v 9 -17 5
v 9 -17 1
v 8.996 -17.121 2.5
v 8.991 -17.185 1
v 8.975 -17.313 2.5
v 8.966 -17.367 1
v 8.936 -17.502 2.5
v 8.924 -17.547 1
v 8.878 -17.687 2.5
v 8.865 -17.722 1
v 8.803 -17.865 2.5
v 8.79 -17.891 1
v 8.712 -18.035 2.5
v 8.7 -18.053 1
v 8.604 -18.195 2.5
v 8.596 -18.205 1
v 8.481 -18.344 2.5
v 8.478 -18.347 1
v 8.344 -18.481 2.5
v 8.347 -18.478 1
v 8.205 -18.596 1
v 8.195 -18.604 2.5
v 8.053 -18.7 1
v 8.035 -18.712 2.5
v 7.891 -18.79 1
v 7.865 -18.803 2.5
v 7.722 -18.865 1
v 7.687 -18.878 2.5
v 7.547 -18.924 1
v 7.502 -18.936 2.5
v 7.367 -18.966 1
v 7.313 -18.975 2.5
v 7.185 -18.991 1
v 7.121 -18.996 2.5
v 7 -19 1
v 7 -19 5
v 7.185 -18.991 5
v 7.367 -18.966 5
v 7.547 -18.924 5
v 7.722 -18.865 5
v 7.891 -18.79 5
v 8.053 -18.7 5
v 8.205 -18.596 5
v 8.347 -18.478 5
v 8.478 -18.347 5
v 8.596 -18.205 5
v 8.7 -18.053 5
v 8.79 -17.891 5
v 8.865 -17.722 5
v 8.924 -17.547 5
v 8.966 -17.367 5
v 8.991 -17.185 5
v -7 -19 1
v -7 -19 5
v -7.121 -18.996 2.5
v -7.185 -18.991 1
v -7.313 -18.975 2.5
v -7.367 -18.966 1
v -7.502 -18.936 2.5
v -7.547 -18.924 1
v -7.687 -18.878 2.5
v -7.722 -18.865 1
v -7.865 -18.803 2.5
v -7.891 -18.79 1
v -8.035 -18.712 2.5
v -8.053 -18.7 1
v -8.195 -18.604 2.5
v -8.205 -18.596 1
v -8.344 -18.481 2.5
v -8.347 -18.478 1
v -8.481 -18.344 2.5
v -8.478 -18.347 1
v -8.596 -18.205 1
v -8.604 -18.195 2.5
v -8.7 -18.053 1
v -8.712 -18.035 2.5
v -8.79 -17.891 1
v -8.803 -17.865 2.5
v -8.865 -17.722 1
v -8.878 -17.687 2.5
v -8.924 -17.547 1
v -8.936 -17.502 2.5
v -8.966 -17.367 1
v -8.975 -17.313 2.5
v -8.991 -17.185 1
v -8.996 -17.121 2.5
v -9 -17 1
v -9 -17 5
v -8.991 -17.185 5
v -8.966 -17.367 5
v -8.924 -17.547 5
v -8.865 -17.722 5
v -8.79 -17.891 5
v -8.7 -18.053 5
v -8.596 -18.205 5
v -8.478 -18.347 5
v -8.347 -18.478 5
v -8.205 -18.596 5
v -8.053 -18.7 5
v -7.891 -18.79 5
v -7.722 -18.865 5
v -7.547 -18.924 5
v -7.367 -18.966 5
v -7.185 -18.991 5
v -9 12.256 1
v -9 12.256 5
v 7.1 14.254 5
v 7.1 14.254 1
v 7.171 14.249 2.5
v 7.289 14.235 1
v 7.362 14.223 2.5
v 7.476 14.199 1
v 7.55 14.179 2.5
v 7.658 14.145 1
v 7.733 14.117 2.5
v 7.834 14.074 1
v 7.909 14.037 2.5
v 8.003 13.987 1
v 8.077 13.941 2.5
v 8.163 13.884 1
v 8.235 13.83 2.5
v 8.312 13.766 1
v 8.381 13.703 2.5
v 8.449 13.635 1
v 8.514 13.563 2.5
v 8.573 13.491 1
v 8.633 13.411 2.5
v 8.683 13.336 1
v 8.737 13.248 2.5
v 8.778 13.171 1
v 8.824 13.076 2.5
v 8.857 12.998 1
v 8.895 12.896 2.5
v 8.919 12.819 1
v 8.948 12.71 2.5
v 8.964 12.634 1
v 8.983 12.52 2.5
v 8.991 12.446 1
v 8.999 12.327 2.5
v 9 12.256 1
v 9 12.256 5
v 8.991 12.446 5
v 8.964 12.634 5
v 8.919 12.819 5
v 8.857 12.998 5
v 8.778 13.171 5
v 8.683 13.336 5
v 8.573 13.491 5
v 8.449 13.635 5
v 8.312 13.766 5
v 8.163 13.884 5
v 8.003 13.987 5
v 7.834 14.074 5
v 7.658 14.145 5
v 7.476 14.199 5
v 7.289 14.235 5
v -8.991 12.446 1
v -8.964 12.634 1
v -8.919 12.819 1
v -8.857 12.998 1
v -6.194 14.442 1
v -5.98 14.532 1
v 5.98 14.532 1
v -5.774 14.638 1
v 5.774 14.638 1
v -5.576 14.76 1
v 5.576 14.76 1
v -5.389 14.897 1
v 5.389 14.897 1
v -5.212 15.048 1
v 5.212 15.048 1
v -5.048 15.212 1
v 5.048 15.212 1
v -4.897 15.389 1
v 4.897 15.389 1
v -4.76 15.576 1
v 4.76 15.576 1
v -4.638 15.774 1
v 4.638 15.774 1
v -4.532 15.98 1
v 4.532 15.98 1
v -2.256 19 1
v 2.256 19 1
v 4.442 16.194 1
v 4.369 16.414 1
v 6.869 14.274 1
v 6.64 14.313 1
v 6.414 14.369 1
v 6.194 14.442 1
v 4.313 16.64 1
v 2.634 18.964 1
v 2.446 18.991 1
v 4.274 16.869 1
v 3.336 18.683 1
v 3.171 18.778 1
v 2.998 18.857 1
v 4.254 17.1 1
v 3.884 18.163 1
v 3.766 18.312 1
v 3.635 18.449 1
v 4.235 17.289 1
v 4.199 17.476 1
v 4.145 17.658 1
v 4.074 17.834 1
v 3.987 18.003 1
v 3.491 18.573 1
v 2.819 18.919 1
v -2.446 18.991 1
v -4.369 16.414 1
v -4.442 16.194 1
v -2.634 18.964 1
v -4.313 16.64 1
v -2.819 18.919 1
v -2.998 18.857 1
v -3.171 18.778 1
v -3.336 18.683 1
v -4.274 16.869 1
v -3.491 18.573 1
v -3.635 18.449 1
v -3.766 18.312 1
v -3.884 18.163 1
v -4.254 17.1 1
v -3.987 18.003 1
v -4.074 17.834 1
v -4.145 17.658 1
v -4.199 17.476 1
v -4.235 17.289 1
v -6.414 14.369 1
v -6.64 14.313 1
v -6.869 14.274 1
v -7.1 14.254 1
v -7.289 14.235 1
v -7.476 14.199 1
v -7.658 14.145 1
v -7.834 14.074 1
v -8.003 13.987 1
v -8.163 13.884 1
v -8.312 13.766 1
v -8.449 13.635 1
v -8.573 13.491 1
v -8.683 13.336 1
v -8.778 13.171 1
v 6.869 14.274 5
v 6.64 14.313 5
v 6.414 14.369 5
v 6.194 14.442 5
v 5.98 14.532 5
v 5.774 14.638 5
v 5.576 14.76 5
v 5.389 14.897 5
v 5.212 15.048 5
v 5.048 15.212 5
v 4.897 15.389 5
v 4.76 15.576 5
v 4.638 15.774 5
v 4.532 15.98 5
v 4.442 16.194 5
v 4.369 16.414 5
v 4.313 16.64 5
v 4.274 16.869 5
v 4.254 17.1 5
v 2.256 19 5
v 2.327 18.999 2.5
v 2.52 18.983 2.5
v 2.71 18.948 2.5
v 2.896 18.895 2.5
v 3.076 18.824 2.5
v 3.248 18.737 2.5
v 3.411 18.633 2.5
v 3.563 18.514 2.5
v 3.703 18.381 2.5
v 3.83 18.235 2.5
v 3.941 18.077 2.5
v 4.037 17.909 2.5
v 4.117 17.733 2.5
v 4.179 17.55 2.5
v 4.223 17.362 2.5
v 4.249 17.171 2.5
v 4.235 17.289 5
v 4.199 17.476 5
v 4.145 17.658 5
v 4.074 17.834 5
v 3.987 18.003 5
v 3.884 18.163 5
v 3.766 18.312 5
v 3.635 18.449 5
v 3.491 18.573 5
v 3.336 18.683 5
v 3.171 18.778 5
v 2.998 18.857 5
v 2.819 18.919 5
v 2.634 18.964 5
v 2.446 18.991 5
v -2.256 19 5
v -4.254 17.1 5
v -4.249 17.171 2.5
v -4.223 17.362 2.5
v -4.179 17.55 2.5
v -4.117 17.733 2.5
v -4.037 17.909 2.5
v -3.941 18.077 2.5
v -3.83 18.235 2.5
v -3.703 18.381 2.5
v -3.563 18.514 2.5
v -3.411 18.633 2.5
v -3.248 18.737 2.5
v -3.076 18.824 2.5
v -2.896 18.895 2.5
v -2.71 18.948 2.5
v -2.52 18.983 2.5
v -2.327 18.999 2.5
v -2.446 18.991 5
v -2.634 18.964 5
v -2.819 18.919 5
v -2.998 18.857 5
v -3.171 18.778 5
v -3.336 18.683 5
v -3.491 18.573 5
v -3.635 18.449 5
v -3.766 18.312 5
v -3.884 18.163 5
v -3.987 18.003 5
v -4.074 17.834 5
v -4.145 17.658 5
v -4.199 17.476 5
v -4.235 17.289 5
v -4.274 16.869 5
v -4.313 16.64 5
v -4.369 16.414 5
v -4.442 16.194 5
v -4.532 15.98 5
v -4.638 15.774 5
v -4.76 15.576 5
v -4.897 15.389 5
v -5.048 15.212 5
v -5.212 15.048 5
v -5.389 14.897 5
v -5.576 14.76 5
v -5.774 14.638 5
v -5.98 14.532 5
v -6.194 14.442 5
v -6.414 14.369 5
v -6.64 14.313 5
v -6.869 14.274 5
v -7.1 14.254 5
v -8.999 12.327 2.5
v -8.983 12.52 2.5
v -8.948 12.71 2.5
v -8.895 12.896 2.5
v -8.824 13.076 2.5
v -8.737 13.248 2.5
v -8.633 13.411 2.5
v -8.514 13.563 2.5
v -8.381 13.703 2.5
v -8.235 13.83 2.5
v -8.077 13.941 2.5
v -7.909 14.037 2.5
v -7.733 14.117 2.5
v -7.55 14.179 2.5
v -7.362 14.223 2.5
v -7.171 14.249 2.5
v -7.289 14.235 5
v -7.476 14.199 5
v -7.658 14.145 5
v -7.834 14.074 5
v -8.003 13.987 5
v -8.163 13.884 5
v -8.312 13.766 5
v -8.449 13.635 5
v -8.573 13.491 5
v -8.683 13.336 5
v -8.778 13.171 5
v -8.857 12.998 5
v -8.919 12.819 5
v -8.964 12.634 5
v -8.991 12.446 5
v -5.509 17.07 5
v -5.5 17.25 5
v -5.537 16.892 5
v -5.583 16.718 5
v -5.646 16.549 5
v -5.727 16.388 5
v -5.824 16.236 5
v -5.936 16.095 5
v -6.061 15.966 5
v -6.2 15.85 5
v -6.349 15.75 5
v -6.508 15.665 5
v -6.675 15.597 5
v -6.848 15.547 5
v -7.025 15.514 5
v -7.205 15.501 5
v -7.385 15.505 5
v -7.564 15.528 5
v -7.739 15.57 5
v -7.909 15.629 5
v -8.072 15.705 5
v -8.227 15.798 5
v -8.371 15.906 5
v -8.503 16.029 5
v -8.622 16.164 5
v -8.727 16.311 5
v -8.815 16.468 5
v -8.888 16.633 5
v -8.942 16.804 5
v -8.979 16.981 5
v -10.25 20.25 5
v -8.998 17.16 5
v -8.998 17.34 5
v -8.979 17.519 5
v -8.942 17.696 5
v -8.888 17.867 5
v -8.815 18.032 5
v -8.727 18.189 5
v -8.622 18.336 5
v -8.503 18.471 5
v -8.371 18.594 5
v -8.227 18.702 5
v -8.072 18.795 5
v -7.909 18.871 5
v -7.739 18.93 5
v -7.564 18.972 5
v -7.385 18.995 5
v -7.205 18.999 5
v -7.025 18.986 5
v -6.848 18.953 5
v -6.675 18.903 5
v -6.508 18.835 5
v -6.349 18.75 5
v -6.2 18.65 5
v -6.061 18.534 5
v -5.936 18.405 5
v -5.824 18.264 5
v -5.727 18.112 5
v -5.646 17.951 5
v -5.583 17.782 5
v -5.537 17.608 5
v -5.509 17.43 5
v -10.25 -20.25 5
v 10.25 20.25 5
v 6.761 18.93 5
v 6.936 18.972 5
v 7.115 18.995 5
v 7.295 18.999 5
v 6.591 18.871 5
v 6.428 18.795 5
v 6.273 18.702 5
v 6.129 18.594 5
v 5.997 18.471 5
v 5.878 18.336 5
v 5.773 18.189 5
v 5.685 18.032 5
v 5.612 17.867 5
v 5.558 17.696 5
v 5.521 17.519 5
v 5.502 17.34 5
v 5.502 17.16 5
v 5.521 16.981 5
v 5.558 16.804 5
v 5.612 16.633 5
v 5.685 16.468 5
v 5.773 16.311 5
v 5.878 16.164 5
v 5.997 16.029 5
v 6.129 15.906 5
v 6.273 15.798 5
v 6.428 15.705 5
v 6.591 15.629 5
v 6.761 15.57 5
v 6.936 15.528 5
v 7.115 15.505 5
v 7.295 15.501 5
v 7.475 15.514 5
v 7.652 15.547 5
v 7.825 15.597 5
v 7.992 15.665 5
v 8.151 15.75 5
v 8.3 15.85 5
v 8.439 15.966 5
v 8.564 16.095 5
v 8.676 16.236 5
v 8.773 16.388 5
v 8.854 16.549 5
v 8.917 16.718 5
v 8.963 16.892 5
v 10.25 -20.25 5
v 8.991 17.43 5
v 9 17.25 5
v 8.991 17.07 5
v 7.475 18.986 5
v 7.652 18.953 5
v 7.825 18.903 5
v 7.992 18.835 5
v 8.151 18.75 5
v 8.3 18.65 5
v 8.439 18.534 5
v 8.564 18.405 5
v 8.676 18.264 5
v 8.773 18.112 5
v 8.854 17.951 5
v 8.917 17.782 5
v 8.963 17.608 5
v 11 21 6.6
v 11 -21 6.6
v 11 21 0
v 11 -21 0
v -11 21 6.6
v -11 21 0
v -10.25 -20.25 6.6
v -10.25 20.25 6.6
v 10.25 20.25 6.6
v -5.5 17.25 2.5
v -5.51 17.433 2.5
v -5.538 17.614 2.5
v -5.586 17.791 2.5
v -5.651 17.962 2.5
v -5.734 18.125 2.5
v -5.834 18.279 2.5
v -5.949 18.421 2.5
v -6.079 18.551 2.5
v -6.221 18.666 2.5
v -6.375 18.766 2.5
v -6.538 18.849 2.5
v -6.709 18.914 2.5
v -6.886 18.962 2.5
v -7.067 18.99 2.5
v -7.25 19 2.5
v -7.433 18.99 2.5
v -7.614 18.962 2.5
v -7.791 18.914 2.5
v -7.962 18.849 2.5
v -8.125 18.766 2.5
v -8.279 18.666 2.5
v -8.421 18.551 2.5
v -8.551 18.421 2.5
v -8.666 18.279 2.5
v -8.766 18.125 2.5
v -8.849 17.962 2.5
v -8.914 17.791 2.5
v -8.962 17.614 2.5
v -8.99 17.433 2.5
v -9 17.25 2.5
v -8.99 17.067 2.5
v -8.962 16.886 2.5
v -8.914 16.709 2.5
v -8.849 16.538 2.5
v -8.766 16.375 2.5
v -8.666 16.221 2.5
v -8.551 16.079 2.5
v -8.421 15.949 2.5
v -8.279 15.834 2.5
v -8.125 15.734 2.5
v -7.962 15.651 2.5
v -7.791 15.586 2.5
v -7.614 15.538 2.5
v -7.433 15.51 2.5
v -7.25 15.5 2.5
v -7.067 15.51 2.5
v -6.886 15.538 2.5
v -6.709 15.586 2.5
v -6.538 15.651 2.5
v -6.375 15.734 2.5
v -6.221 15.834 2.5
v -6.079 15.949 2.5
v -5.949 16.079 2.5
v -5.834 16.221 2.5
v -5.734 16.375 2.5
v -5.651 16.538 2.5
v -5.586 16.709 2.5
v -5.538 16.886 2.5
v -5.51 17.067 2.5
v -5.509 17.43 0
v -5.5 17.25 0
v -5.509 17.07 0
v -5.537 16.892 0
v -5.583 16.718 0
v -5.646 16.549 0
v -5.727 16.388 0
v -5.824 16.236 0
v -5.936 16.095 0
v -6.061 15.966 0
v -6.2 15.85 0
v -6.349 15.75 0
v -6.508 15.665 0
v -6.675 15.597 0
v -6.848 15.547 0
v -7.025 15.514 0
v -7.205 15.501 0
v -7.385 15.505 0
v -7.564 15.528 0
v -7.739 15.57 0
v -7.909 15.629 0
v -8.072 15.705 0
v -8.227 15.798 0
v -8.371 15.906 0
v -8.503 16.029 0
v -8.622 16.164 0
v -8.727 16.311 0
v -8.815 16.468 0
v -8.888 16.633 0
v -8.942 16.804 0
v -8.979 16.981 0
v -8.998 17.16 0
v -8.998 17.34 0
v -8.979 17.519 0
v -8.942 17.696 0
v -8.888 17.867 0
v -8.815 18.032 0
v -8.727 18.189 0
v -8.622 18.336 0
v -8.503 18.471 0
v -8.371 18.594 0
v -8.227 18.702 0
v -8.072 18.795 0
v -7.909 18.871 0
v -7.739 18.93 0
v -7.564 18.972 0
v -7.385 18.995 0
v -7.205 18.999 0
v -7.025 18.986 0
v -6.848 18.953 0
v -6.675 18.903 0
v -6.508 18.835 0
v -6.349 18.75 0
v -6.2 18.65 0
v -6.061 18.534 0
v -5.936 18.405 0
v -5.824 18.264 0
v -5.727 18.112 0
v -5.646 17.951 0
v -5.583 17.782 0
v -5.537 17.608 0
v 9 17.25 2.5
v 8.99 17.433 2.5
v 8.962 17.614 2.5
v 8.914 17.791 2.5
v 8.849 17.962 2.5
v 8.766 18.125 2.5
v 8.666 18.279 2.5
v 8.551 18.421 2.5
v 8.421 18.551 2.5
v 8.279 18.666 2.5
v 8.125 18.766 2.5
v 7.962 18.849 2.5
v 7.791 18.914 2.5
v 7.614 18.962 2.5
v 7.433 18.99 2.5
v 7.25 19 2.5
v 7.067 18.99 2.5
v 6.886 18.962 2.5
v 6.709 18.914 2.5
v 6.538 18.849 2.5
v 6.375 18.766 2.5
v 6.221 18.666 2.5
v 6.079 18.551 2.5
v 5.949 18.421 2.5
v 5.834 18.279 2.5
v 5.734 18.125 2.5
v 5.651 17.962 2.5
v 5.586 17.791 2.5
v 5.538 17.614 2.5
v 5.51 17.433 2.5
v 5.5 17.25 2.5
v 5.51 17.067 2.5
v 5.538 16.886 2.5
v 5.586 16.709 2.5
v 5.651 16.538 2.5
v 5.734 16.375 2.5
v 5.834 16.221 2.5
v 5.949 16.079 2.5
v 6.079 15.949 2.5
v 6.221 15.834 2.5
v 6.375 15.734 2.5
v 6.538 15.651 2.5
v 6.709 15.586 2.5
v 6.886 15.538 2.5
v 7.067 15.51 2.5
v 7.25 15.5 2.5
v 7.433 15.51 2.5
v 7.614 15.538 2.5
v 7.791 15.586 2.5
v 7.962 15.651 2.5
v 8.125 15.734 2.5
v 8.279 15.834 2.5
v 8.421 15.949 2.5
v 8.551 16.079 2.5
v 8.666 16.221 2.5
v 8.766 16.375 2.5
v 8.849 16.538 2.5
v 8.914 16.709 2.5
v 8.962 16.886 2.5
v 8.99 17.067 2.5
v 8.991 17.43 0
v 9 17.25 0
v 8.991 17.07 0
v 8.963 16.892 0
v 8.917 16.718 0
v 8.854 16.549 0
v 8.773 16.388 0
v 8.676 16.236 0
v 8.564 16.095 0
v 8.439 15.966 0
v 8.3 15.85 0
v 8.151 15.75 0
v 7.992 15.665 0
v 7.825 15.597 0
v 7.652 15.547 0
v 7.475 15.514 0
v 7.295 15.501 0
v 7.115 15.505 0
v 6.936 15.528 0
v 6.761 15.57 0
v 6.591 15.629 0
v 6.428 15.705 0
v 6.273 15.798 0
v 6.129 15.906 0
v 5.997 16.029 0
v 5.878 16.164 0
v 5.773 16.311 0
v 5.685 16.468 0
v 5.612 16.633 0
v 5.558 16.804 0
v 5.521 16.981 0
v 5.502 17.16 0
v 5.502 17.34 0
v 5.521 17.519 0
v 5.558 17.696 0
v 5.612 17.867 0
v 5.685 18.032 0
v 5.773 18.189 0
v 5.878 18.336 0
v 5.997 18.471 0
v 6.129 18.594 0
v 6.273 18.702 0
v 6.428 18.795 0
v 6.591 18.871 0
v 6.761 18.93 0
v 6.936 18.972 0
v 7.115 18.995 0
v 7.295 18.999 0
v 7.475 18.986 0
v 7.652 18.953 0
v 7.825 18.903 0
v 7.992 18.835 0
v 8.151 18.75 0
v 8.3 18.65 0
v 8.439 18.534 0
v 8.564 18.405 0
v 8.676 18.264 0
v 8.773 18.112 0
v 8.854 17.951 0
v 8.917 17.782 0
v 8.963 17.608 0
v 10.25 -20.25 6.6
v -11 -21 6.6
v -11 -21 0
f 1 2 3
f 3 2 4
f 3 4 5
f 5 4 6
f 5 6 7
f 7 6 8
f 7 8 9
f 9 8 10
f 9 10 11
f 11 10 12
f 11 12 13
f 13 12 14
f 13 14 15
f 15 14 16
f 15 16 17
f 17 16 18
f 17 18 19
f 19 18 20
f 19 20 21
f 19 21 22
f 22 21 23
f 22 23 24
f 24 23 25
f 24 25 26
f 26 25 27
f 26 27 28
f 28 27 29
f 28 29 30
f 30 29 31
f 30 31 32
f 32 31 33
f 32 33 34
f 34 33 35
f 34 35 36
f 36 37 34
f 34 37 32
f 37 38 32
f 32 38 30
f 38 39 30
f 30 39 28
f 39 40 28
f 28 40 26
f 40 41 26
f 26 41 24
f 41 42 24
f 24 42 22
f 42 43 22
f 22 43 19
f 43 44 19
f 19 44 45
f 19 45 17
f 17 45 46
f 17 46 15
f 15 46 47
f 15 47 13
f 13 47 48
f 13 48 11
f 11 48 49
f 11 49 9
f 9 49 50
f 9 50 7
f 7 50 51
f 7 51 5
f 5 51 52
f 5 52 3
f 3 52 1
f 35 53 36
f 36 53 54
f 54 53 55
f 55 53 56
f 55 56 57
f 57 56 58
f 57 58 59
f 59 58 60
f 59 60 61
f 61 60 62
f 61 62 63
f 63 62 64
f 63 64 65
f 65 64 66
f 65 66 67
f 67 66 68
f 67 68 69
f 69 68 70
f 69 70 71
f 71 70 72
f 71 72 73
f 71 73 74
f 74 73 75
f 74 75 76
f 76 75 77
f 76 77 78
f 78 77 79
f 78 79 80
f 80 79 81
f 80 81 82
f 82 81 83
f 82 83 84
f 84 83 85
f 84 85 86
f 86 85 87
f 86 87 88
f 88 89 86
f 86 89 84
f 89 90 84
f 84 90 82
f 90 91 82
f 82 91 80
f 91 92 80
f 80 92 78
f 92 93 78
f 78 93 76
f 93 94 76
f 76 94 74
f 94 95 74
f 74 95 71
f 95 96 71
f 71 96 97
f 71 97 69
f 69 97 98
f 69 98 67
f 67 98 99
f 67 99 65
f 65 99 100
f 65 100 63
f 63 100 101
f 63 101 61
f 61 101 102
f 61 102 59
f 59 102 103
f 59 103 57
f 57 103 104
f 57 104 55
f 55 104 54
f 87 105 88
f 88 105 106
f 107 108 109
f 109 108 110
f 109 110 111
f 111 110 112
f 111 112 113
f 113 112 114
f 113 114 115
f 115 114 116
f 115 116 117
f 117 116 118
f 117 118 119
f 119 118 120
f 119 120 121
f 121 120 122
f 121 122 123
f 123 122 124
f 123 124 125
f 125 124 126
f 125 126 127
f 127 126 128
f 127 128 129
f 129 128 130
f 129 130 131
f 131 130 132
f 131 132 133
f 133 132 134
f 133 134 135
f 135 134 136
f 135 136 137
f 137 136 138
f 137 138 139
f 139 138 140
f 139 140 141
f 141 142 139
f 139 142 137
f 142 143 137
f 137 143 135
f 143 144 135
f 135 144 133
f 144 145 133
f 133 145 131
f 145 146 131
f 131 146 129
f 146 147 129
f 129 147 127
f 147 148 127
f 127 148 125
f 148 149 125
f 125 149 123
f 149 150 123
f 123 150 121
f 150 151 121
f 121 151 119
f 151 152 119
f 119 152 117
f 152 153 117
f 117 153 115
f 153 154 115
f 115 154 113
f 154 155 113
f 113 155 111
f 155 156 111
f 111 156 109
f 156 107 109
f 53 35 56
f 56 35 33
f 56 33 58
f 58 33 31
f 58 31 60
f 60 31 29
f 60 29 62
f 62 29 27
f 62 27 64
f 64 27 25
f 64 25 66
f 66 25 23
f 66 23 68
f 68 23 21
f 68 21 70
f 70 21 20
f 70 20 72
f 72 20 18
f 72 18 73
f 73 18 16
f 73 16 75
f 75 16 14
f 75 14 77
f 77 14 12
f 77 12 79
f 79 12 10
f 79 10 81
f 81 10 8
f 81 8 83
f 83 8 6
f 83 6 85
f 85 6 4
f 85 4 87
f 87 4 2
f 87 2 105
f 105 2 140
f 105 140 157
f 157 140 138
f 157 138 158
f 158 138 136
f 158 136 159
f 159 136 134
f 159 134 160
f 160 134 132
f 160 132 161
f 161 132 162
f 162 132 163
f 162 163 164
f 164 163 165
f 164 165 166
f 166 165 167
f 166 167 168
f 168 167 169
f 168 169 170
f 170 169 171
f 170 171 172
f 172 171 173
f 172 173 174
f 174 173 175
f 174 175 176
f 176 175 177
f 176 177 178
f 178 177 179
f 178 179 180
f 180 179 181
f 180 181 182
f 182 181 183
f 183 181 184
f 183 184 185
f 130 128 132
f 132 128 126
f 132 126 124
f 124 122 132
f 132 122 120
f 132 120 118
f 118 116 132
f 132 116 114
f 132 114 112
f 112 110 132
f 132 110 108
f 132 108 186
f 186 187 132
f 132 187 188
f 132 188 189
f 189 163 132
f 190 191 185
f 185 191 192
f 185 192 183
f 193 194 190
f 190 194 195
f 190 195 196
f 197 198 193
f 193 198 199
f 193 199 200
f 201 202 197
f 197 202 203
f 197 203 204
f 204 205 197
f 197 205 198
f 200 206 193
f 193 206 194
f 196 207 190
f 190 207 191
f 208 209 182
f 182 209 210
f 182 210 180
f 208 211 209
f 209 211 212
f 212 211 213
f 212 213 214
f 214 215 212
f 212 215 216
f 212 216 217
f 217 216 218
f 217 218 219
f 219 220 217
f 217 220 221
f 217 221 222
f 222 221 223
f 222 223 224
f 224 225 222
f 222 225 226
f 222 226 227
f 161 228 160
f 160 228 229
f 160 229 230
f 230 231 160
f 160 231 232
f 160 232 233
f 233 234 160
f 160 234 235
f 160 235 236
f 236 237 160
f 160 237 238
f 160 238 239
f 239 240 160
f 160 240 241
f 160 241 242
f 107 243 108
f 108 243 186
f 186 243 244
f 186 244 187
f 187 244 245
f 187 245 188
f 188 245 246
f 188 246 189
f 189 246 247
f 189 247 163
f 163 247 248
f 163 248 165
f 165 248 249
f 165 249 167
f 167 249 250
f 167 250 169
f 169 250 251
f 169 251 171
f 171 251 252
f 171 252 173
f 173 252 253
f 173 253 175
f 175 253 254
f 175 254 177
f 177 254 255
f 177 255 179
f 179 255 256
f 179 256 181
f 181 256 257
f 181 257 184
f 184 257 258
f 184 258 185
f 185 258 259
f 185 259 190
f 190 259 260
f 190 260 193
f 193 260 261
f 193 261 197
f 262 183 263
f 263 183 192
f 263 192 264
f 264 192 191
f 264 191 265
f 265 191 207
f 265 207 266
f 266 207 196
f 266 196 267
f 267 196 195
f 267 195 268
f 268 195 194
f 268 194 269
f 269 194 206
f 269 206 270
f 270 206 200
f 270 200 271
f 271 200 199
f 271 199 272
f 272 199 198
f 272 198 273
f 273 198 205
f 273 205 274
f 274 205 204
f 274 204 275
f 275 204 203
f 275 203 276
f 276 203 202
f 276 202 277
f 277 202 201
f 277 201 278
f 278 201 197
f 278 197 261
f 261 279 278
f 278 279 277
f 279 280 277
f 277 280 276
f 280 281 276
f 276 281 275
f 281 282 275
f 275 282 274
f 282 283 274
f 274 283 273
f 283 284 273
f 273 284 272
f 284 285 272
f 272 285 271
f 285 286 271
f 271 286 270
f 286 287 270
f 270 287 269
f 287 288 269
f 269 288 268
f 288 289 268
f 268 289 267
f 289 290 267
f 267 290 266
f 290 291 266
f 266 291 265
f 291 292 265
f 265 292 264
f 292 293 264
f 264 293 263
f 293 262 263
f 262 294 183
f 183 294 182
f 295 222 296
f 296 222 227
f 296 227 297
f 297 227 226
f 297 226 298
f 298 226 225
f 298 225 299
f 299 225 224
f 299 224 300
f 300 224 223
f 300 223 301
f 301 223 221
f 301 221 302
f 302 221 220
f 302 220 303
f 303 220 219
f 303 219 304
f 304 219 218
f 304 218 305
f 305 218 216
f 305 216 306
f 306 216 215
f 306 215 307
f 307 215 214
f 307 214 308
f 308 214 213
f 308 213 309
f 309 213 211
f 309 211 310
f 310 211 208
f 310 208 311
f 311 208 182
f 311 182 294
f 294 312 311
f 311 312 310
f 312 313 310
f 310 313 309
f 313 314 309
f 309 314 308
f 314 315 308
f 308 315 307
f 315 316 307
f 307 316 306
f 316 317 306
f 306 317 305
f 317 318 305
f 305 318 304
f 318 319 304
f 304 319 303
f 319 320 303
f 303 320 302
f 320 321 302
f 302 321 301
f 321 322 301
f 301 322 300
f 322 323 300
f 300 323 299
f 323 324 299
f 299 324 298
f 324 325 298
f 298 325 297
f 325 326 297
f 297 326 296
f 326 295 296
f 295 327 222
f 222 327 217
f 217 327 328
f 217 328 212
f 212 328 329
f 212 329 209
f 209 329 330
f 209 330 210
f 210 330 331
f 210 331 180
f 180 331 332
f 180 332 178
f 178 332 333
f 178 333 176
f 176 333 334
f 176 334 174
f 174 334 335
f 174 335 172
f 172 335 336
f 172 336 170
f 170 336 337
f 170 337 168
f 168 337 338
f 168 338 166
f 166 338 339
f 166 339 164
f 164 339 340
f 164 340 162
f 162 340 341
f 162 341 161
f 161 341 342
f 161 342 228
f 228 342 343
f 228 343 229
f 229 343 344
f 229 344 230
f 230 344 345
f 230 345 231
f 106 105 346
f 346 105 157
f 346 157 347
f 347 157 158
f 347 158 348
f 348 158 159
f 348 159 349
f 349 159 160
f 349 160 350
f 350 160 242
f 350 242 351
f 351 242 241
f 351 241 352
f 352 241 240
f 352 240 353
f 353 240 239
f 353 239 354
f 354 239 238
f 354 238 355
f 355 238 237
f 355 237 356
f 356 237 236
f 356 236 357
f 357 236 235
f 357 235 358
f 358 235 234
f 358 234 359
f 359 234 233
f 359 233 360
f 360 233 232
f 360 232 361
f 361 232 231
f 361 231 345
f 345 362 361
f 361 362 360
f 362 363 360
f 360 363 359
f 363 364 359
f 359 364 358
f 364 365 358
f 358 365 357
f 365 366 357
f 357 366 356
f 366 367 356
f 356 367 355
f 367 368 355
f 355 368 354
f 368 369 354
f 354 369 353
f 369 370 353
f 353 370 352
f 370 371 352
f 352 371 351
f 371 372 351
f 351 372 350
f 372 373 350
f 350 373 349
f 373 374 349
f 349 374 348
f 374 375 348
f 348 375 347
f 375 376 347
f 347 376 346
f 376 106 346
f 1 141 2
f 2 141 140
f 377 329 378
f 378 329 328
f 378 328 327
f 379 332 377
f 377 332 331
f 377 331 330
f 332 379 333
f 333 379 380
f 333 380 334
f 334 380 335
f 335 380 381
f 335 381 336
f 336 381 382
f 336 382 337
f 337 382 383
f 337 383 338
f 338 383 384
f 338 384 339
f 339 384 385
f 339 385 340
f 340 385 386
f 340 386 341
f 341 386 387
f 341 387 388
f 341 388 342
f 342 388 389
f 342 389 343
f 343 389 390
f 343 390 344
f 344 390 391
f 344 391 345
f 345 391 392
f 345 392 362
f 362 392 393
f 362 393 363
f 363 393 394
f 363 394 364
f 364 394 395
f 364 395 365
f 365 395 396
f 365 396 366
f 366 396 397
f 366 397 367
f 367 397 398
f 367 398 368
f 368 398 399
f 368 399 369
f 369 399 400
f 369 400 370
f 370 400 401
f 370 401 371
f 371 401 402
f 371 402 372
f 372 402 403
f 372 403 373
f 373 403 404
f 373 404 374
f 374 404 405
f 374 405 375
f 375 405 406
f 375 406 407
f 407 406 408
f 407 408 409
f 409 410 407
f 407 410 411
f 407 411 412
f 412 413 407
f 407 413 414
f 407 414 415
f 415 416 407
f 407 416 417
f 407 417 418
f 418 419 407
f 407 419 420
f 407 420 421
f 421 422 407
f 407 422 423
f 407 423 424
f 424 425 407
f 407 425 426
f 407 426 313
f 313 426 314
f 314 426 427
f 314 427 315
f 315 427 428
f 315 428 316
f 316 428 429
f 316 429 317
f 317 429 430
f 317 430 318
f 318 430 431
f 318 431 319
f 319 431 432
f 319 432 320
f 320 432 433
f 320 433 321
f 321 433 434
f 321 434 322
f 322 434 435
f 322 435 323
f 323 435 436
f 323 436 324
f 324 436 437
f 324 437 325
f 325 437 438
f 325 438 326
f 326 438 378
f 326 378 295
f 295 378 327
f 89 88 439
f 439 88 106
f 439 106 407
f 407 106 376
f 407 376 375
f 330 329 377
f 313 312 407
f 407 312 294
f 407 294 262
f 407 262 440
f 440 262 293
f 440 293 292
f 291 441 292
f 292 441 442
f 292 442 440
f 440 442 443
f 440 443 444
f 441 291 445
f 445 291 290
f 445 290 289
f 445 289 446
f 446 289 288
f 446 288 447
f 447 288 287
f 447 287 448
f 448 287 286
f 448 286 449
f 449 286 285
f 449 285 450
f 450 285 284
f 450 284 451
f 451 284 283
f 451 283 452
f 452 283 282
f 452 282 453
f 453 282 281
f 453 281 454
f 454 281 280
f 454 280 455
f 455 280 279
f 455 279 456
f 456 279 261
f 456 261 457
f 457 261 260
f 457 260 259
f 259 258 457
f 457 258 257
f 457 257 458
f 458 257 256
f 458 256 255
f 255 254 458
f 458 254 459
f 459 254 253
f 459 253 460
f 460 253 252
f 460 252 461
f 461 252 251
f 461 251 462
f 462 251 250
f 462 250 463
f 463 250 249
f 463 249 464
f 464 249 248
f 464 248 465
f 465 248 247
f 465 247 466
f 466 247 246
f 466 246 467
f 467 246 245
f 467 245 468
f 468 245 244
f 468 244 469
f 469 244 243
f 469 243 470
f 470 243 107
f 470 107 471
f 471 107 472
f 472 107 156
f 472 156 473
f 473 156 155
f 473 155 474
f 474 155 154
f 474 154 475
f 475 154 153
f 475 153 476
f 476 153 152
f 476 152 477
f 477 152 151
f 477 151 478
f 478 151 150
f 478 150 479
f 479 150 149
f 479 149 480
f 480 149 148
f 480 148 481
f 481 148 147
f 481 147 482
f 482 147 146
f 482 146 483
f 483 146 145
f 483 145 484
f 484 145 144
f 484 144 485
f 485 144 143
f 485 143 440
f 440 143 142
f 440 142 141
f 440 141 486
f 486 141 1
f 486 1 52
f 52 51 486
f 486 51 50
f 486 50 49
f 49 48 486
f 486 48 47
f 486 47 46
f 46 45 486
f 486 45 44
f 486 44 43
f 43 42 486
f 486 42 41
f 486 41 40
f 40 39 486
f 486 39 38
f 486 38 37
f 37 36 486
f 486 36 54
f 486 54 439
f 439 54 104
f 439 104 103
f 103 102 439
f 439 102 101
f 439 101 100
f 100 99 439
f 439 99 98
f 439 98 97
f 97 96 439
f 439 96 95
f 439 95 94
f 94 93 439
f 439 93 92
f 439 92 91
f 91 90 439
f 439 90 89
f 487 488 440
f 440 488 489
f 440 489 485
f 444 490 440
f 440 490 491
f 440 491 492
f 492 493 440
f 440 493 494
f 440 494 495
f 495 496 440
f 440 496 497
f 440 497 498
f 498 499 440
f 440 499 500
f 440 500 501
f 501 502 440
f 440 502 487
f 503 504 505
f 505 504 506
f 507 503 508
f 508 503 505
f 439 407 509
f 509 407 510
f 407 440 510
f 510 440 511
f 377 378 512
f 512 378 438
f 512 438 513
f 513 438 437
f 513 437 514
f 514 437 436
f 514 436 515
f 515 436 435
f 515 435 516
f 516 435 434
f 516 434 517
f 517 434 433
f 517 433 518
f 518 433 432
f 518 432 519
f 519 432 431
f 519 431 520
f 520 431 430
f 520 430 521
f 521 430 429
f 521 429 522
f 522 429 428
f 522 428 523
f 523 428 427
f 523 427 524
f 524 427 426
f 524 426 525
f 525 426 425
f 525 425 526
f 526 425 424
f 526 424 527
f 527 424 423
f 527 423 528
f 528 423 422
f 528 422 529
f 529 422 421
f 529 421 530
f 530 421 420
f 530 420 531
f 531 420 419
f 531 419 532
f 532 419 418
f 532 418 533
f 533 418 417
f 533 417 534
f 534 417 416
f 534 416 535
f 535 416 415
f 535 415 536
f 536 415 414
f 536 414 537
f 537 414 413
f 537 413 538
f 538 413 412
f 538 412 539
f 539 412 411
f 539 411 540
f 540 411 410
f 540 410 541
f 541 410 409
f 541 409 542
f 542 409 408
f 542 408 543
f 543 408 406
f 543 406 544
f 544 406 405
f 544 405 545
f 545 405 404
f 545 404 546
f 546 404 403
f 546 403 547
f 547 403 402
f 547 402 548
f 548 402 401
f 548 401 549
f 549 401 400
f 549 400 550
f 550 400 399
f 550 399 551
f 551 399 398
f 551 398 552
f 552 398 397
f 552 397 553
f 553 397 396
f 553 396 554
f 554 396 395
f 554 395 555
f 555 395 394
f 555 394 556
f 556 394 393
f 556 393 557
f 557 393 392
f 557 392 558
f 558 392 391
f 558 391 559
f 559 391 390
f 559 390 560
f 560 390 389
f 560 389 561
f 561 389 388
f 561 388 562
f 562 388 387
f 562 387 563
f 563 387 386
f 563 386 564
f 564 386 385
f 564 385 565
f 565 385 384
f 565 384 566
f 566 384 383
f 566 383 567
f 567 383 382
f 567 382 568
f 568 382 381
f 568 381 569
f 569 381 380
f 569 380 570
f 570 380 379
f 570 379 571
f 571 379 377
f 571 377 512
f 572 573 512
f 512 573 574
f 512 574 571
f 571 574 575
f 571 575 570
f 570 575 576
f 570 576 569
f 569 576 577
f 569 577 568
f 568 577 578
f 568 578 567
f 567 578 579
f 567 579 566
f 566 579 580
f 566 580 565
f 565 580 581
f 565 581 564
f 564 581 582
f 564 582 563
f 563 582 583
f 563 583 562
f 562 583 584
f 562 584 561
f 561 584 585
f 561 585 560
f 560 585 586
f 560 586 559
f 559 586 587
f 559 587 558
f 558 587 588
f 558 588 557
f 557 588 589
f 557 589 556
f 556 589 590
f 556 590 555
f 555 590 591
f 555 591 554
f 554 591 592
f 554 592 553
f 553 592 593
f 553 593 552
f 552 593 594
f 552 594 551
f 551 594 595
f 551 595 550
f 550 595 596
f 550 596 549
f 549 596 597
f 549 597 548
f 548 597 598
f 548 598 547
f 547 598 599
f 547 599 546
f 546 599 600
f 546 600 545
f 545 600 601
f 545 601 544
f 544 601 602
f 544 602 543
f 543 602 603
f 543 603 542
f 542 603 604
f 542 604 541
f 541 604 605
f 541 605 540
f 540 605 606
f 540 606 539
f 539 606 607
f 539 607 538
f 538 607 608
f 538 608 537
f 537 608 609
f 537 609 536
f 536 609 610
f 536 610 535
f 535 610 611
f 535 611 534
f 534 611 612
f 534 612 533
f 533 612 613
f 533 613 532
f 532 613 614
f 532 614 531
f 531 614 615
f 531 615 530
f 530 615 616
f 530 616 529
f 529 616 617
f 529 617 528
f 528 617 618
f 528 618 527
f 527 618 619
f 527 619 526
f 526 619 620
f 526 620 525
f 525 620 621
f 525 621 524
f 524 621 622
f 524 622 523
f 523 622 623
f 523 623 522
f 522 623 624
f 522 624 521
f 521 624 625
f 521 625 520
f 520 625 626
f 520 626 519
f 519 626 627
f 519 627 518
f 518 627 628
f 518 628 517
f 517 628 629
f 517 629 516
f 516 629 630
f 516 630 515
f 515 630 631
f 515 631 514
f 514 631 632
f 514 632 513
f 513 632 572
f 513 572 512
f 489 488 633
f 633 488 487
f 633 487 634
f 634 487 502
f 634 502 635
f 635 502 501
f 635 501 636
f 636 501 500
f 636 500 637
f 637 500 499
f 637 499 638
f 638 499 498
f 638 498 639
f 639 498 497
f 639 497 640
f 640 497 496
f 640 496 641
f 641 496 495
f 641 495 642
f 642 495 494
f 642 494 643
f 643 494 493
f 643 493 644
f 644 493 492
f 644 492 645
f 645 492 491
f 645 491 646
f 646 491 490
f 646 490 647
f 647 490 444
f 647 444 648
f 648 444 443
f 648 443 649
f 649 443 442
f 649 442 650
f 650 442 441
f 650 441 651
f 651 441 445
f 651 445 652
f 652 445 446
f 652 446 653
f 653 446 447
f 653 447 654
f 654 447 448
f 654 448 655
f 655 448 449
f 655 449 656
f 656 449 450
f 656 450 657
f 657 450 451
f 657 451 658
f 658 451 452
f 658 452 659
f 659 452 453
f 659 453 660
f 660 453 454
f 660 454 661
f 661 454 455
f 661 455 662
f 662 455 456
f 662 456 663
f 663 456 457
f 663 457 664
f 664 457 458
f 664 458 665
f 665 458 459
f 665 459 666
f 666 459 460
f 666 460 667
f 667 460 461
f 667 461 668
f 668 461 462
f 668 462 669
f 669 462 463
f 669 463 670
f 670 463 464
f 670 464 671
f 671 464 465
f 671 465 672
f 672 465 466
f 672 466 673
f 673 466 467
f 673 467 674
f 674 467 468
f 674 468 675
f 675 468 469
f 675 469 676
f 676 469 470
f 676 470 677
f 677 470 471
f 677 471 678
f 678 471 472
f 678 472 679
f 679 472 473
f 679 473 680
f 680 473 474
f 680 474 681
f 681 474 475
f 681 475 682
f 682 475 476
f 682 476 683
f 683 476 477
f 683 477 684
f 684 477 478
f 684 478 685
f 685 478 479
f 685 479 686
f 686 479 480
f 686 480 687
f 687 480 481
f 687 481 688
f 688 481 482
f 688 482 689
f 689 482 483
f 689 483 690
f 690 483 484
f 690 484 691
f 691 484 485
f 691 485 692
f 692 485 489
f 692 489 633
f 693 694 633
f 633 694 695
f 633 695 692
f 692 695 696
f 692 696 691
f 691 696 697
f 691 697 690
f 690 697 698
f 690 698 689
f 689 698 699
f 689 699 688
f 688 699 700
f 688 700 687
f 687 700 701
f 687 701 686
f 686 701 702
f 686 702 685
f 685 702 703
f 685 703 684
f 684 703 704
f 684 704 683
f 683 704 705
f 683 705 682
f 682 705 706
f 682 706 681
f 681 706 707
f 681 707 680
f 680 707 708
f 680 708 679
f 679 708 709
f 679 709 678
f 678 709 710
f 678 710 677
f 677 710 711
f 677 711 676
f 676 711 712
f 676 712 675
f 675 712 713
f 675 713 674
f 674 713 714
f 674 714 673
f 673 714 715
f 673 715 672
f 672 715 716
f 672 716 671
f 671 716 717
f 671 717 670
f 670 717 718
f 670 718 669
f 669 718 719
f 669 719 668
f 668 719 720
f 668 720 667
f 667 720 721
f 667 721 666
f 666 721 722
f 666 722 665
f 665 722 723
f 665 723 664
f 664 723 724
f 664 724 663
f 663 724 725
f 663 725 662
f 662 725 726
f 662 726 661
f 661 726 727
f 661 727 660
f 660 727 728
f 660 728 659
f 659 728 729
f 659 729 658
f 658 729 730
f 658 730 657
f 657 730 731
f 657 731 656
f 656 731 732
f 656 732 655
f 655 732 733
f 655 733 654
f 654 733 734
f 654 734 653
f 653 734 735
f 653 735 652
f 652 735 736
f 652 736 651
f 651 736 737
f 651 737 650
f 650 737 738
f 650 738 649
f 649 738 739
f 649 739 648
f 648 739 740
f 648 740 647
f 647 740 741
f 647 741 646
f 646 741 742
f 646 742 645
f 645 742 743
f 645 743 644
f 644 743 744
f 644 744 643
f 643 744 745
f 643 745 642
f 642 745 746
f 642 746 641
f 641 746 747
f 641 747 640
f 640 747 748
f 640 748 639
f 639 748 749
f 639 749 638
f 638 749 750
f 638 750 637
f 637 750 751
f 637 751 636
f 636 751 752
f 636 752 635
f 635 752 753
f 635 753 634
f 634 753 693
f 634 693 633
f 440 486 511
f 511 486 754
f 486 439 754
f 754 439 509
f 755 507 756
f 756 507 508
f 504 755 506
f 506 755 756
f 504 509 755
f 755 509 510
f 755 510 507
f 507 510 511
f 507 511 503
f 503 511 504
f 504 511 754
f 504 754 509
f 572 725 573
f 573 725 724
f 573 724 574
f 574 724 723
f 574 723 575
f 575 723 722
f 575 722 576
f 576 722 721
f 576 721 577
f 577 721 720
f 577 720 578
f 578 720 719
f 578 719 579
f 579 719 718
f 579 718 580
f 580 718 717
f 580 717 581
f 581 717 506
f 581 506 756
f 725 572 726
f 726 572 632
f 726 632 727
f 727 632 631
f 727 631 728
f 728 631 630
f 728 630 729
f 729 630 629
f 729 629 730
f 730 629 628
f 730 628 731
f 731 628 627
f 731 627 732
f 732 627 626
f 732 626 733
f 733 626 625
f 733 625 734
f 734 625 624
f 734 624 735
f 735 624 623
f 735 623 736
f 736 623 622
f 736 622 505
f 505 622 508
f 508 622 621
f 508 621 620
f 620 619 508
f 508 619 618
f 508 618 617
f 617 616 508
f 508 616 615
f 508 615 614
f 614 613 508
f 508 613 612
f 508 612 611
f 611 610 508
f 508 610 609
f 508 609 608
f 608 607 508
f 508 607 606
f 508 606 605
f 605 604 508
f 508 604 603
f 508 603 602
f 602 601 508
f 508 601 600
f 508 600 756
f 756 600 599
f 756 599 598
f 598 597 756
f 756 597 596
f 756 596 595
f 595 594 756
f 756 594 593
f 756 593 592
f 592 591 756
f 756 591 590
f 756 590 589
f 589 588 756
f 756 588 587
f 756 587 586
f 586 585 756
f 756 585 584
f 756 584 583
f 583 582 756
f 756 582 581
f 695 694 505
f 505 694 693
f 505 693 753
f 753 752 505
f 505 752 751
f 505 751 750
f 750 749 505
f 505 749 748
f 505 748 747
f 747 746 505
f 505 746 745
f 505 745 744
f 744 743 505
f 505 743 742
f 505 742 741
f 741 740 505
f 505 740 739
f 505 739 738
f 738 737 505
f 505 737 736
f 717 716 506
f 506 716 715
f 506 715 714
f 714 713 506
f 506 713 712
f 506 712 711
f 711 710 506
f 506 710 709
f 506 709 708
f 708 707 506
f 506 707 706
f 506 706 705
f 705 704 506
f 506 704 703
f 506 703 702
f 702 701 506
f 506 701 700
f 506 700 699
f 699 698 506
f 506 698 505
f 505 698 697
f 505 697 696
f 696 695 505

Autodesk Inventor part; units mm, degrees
ref_plane "YZ Plane" through (0, 0, 0) normal (1, 0, 0) x (0, 1, 0)
ref_plane "XZ Plane" through (0, 0, 0) normal (0, 1, 0) x (-1, 0, 0)
ref_plane "XY Plane" through (0, 0, 0) normal (0, 0, 1) x (1, 0, 0)
sketch "スケッチ1" plane through (0, 0, 0) normal (0, 0, 1) x (1, 0, 0)
  line L0 (-10, 20) -> (10, 20) construction
  line L1 (10, 20) -> (10, -20) construction
  line L2 (10, -20) -> (-10, -20) construction
  line L3 (-10, -20) -> (-10, 20) construction
  line L4 (-10, 20) -> (10, -20) construction
  line L5 (10, 20) -> (-10, -20) construction
  circle A0 centre (-7.25, 17.25) radius 1.75
  line L6 (0, 20) -> (0, -20) construction
  circle A1 centre (7.25, 17.25) radius 1.75
  line L7 (9, -19) -> (-9, -19)
  line L8 (-9, -19) -> (-9, 14.8133)
  line L9 (-9, 19) -> (-4.8133, 19) construction
  line L10 (9, 19) -> (9, 14.8133) construction
  line L11 (9, -19) -> (-9, 19) construction
  line L12 (-9, -19) -> (9, 19) construction
  arc A2 (-9, 14.8133) -> (-4.8133, 19) centre (-7.25, 17.25) ccw
  line L13 (-4.8133, 19) -> (4.8133, 19)
  line L14 (-9, 14.8133) -> (-9, 19) construction
  arc A3 (4.8133, 19) -> (9, 14.8133) centre (7.25, 17.25) ccw
  line L15 (4.8133, 19) -> (9, 19) construction
  line L16 (9, 14.8133) -> (9, -19)
  line L17 (-11, 21) -> (11, 21)
  line L18 (11, 21) -> (11, -21)
  line L19 (11, -21) -> (-11, -21)
  line L20 (-11, -21) -> (-11, 21)
  line L21 (-11, 21) -> (11, -21) construction
  line L22 (11, 21) -> (-11, -21) construction
  line L23 (10.25, -20.25) -> (-10.25, -20.25)
  line L24 (-10.25, -20.25) -> (-10.25, 20.25)
  line L25 (-10.25, 20.25) -> (10.25, 20.25)
  line L26 (10.25, 20.25) -> (10.25, -20.25)
  line L27 (10.25, -20.25) -> (-10.25, 20.25) construction
  line L28 (-10.25, -20.25) -> (10.25, 20.25) construction
  point P0 (0, 0)
  point P1 (0, 0)
  dimension "d0" = 20
  dimension "d1" = 40
  dimension "d2" = 3.5
  dimension "d3" = 2.75
  dimension "d4" = 2.75
  dimension "d5" = 1
  dimension "d6" = 1
  dimension "d7" = 3
  dimension "d13" = 1
  dimension "d14" = 1
  dimension "d15" = 0.25
  dimension "d16" = 0.25
extrude "押し出し1" add sketch "スケッチ1" along normal blind 6.6 contours L17 L18 L19 L20
extrude "押し出し2" add sketch "スケッチ1" along normal blind 1 contours L7 L8 A2 L13 A3 L16 | L23 L24 L25 L26
extrude "押し出し3" add sketch "スケッチ1" along normal blind 5 contours L17 L18 L19 L20 | L23 L24 L25 L26
fillet "フィレット1" radius 2 6 edges at (-9, 14.8133, 3) (-4.8133, 19, 3) (4.8133, 19, 3) (9, 14.8133, 3) (-9, -19, 3) (9, -19, 3)
equation "\"d4\" = d3"
equation "\"d6\" = d5"
equation "\"d14\" = d5"
properties part number "_3D プリント"
